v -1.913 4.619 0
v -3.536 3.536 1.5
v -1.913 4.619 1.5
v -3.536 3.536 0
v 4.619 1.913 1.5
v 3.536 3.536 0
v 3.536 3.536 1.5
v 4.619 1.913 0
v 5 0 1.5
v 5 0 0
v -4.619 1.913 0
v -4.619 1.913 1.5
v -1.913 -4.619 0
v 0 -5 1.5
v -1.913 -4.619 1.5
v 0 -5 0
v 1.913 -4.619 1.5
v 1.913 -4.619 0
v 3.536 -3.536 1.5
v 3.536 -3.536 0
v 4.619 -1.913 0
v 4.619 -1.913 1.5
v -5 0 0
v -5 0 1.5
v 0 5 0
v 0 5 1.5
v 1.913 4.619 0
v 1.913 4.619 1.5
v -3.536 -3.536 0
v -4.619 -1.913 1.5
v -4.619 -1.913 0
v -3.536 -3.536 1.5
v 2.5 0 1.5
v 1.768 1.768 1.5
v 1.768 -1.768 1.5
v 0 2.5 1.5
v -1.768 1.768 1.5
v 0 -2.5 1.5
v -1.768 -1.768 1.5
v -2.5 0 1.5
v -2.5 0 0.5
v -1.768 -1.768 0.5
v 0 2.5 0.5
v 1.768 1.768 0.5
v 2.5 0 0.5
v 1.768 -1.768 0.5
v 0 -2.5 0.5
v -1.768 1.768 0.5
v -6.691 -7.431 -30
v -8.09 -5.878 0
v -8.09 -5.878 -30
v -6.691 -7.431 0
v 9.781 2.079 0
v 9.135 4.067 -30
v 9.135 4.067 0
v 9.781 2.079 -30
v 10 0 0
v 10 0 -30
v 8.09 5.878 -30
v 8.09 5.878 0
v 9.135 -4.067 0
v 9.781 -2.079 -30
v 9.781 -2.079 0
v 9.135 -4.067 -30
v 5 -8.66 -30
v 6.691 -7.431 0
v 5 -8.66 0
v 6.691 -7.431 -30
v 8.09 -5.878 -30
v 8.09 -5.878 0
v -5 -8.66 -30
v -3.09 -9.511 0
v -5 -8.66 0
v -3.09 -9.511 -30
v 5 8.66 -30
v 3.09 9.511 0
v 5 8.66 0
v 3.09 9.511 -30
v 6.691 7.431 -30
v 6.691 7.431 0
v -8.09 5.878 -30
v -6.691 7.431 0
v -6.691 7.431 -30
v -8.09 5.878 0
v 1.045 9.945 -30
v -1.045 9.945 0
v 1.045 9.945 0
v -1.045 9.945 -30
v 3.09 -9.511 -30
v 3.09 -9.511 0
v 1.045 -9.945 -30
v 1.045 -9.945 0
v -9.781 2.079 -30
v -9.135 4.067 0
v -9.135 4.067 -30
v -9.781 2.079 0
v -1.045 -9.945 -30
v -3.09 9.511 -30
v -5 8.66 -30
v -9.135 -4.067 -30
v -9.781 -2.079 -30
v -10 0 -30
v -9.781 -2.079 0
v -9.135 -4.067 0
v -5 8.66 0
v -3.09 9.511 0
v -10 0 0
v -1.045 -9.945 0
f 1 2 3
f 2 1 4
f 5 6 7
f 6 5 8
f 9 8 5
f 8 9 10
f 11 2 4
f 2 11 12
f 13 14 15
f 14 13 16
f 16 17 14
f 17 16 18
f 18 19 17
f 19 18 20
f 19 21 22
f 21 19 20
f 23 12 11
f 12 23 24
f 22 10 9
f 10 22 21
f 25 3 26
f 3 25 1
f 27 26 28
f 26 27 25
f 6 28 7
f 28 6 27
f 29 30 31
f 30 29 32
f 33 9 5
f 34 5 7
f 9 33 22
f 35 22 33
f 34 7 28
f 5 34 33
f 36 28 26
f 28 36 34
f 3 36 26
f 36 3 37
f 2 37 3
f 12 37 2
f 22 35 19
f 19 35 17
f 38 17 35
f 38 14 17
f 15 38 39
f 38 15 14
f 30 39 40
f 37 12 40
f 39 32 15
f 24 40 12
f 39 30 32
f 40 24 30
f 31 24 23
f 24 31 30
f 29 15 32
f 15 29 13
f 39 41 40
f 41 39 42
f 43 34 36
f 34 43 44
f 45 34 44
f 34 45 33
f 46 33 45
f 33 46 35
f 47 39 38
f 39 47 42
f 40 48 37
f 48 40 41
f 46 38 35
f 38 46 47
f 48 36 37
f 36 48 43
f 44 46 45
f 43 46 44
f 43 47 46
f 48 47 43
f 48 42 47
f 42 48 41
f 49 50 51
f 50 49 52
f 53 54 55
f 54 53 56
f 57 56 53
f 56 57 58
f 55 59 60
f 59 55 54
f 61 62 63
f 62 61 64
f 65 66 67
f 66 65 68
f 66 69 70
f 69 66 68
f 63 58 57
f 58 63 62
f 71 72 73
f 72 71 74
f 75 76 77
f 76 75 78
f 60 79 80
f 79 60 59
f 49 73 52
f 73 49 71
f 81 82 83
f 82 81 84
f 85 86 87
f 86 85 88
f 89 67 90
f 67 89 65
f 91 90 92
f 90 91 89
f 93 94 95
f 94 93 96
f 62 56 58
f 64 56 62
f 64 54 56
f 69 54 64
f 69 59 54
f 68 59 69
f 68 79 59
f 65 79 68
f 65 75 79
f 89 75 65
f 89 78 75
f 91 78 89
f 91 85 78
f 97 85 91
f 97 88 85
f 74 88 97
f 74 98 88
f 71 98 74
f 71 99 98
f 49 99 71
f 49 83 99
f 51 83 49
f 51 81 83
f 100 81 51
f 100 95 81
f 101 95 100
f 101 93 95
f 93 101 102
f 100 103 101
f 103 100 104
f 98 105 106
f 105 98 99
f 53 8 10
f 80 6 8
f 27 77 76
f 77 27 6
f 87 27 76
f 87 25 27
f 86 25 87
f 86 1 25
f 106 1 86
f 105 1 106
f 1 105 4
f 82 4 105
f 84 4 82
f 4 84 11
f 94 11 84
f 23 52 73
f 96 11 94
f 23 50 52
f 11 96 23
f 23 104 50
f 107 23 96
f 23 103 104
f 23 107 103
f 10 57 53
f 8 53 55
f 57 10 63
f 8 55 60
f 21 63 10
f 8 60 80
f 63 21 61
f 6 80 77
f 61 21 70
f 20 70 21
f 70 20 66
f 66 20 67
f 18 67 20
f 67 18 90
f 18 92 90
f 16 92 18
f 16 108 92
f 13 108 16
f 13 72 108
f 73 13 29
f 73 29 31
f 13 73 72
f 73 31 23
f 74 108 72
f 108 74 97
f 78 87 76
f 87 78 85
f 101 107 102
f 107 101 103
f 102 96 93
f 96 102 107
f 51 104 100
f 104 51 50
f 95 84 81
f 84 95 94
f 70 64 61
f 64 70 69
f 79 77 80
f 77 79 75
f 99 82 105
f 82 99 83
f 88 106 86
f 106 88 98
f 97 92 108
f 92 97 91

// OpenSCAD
// Bolt parameters
head_diameter = 10;
head_height = 3;
shank_diameter = 20;
shank_length = 30;
thread_diameter = 8;
thread_pitch = 1.25;
total_length = shank_length + head_height;

module bolt_head() {
  difference() {
    cylinder(h = head_height, d = head_diameter, center = true);
    translate([0,0,head_height/2]) cylinder(h = 2, d = head_diameter/2, center = true);
  }
  translate([0,0,-head_height/2]) rotate([0,0,90]) cylinder(h = 2, d = thread_diameter, center = true);
}

module bolt_shank() {
  cylinder(h = shank_length, d = shank_diameter, center = true);
}

module bolt() {
  translate([0,0,0]) bolt_head();
  translate([0,0,-shank_length/2]) bolt_shank();
}

// Render the bolt
bolt();
